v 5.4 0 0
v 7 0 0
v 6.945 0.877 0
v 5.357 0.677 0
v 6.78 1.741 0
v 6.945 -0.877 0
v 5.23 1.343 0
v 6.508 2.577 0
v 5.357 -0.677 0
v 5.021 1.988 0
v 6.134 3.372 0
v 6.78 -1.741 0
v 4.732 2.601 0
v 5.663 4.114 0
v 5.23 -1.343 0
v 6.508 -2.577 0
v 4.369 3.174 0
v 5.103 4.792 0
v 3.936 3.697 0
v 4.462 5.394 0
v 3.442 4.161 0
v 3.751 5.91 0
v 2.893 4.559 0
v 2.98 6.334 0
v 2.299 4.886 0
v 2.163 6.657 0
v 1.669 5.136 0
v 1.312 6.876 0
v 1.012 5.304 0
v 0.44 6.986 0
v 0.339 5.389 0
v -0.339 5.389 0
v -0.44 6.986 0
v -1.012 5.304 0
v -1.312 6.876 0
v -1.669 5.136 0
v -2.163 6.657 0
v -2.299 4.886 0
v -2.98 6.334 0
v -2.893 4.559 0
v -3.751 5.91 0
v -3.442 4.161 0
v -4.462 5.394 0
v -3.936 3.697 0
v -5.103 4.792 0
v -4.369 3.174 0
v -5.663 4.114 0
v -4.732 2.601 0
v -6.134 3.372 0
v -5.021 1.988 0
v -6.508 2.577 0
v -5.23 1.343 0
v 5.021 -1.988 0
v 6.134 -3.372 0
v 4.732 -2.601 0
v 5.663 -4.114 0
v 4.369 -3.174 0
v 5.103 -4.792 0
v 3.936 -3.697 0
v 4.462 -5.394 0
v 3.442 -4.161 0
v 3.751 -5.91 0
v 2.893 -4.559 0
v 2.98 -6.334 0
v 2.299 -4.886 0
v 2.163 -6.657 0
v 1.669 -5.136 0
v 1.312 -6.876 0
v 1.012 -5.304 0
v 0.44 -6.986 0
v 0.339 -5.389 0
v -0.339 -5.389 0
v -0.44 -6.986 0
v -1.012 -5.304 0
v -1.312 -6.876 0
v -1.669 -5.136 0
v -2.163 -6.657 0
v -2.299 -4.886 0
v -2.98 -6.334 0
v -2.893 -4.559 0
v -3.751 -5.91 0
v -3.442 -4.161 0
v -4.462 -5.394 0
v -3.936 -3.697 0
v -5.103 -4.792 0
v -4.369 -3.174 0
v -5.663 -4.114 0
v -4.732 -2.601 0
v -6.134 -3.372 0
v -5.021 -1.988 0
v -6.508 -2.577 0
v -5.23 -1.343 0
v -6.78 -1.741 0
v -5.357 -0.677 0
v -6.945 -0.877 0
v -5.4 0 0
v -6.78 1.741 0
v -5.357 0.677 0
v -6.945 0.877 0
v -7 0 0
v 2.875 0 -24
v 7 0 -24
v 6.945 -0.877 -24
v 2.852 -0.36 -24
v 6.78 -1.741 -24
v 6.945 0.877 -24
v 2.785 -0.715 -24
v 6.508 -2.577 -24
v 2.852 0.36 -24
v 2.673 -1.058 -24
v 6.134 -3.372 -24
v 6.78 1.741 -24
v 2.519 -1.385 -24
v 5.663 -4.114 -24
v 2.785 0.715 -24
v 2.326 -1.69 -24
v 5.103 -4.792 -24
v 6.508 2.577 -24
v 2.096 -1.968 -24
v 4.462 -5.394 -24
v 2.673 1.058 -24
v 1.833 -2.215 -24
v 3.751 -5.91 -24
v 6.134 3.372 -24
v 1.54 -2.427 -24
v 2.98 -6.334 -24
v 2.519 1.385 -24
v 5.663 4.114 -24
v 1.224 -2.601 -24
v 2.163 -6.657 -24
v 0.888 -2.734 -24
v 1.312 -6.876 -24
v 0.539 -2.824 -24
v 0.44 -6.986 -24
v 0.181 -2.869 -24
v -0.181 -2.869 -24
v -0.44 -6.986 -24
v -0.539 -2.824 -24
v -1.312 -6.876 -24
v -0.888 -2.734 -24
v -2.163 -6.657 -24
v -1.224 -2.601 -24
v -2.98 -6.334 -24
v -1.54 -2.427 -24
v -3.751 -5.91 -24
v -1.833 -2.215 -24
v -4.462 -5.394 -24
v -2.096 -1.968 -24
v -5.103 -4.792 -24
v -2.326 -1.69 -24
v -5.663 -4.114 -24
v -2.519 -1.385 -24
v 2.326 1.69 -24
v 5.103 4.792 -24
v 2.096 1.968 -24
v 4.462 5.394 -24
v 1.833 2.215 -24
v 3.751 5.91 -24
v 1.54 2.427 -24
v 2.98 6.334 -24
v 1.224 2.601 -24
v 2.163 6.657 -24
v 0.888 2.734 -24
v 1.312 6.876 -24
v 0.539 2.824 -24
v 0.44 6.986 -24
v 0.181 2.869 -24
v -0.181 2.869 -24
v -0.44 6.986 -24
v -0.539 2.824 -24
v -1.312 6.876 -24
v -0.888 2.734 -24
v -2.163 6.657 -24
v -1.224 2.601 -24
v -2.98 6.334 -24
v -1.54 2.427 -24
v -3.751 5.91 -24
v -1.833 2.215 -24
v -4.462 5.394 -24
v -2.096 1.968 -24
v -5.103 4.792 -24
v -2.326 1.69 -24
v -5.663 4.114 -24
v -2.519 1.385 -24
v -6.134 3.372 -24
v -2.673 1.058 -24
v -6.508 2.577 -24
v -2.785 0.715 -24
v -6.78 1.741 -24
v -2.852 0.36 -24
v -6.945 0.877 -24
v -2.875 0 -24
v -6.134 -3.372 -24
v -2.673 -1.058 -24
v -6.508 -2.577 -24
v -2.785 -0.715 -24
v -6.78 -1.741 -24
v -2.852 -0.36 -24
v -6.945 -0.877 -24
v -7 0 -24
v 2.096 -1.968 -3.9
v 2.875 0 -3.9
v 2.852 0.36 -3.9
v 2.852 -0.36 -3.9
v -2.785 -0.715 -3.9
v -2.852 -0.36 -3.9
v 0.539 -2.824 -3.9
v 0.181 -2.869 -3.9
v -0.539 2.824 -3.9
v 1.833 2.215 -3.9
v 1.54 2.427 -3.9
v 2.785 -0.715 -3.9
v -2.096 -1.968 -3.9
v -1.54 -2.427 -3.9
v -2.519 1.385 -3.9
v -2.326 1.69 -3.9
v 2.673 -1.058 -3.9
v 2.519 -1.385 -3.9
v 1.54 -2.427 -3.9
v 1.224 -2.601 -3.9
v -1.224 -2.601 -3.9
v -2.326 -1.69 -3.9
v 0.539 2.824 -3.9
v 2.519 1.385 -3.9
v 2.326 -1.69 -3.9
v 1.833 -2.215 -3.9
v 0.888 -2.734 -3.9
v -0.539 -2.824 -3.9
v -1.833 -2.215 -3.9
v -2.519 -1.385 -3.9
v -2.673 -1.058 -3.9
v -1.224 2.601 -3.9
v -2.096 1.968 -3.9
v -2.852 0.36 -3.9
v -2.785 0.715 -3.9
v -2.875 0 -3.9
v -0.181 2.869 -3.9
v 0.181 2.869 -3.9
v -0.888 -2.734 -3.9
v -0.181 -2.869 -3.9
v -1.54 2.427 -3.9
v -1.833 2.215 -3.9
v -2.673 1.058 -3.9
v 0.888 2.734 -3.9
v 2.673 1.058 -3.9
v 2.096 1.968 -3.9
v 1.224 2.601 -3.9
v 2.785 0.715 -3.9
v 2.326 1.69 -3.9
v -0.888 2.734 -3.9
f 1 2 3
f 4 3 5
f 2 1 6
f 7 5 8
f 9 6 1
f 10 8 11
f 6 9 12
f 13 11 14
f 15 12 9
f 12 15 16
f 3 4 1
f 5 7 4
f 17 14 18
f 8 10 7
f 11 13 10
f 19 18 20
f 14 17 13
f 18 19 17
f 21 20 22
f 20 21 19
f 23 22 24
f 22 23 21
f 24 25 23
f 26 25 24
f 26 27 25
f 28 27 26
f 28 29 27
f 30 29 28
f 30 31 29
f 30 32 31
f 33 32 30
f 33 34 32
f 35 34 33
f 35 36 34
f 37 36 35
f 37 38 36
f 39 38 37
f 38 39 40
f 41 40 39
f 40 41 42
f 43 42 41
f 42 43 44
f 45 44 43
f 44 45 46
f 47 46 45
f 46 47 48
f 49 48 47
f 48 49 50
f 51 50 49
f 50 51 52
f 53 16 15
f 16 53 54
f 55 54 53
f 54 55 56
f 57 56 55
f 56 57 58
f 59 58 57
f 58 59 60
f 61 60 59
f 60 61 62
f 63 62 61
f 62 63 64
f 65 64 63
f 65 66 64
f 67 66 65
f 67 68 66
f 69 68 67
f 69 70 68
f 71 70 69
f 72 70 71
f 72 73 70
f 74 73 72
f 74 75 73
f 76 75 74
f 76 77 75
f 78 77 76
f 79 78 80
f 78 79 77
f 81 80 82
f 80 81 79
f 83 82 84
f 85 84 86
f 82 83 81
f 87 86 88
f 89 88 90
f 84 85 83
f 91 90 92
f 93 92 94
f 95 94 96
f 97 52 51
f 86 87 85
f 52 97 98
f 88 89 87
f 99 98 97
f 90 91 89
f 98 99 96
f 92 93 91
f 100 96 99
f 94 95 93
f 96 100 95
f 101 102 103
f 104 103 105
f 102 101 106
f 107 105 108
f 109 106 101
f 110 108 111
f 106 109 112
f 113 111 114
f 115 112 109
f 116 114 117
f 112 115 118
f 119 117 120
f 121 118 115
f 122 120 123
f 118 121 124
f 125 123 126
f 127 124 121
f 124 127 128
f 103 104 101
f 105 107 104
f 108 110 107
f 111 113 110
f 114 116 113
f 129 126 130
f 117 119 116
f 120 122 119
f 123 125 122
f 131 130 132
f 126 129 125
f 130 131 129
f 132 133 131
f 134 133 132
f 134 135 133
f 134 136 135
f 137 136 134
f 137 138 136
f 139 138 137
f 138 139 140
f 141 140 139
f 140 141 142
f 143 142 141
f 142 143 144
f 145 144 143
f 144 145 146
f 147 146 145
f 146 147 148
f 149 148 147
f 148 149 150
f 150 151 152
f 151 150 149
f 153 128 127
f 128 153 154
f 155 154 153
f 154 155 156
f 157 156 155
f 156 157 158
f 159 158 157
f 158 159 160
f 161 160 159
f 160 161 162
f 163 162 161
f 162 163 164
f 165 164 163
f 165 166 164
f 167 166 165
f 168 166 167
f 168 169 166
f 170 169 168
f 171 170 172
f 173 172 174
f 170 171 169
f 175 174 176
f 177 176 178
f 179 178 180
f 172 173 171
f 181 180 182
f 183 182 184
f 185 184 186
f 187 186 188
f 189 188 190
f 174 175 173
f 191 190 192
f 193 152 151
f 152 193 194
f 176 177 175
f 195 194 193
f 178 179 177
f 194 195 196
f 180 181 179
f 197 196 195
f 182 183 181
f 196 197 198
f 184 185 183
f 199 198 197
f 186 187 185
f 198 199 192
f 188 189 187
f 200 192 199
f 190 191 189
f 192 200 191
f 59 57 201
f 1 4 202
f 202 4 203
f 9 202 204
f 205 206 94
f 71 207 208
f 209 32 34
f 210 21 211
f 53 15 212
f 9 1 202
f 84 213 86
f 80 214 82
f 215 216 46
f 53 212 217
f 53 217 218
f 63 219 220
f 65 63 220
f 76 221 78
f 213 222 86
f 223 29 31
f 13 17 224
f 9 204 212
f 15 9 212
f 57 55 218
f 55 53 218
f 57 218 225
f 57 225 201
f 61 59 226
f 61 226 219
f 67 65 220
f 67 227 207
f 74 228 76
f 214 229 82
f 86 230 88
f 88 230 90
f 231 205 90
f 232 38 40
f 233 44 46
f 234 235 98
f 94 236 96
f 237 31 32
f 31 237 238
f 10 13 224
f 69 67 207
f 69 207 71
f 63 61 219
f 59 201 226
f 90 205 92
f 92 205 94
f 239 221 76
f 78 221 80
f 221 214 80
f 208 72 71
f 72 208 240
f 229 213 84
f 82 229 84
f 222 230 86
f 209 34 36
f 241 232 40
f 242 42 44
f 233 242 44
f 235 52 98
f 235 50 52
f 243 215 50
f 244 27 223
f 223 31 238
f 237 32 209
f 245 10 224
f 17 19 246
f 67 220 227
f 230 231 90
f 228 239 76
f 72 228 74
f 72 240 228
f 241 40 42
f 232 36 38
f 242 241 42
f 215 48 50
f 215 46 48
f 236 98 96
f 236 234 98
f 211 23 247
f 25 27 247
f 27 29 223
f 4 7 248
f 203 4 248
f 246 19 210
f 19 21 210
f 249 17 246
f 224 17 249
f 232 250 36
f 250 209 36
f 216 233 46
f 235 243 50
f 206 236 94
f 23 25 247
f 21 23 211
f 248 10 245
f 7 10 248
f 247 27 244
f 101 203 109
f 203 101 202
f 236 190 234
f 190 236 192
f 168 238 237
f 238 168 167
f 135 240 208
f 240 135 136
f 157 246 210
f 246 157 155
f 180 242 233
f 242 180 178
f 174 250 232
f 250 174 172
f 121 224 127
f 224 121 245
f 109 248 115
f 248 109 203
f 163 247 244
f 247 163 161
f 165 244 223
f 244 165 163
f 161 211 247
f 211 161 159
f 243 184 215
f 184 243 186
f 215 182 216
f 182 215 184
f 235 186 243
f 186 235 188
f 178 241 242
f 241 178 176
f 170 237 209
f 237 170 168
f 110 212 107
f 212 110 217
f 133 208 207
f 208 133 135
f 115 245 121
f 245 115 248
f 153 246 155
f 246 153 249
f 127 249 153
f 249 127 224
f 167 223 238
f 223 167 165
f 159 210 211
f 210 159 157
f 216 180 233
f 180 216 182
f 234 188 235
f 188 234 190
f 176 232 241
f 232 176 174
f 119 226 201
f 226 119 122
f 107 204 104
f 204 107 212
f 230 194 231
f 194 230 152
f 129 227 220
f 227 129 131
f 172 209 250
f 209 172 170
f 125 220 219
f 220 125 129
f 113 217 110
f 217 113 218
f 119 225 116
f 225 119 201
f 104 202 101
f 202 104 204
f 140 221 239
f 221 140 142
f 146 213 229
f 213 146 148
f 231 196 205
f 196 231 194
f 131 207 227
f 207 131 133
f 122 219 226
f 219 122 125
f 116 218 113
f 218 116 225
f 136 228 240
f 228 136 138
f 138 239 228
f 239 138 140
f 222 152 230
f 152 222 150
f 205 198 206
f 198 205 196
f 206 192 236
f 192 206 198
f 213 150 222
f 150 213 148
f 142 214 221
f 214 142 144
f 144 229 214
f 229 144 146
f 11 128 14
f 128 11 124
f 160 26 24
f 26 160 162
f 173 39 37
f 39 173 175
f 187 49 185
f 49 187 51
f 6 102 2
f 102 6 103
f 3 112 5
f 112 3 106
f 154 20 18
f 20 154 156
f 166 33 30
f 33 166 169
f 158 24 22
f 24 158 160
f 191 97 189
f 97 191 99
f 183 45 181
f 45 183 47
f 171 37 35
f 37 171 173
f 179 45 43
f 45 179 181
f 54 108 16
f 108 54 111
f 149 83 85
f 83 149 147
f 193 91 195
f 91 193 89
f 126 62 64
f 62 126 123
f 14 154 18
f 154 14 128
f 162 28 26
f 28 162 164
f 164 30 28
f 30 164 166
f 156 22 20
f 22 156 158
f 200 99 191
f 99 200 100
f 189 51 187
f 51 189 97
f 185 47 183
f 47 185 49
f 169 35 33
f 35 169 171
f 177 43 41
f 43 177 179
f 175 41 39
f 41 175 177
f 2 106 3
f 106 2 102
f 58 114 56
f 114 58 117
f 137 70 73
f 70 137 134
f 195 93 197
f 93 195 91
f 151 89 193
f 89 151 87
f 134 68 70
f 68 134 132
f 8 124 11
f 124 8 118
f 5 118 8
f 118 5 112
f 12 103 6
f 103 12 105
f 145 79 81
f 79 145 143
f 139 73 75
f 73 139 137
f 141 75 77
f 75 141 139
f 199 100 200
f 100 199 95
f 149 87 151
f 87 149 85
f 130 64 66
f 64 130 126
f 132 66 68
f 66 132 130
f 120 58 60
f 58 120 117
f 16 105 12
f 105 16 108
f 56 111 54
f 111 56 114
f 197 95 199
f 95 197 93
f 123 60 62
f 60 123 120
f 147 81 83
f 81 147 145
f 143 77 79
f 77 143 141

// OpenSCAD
$fn = 50;


difference() {
	union() {
		translate(v = [0, 0, -24.0000000000]) {
			cylinder(h = 24, r = 7.0000000000);
		}
	}
	union() {
		translate(v = [0, 0, 0]) {
			rotate(a = [0, 0, 0]) {
				difference() {
					union() {
						#translate(v = [0, 0, -24.0000000000]) {
							cylinder(h = 24, r = 2.6000000000);
						}
						#translate(v = [0, 0, -3.9000000000]) {
							cylinder(h = 3.9000000000, r1 = 2.8750000000, r2 = 5.4000000000);
						}
						#translate(v = [0, 0, -24.0000000000]) {
							cylinder(h = 24, r = 2.8750000000);
						}
						#translate(v = [0, 0, -24.0000000000]) {
							cylinder(h = 24, r = 2.6000000000);
						}
					}
					union();
				}
			}
		}
	}
}
